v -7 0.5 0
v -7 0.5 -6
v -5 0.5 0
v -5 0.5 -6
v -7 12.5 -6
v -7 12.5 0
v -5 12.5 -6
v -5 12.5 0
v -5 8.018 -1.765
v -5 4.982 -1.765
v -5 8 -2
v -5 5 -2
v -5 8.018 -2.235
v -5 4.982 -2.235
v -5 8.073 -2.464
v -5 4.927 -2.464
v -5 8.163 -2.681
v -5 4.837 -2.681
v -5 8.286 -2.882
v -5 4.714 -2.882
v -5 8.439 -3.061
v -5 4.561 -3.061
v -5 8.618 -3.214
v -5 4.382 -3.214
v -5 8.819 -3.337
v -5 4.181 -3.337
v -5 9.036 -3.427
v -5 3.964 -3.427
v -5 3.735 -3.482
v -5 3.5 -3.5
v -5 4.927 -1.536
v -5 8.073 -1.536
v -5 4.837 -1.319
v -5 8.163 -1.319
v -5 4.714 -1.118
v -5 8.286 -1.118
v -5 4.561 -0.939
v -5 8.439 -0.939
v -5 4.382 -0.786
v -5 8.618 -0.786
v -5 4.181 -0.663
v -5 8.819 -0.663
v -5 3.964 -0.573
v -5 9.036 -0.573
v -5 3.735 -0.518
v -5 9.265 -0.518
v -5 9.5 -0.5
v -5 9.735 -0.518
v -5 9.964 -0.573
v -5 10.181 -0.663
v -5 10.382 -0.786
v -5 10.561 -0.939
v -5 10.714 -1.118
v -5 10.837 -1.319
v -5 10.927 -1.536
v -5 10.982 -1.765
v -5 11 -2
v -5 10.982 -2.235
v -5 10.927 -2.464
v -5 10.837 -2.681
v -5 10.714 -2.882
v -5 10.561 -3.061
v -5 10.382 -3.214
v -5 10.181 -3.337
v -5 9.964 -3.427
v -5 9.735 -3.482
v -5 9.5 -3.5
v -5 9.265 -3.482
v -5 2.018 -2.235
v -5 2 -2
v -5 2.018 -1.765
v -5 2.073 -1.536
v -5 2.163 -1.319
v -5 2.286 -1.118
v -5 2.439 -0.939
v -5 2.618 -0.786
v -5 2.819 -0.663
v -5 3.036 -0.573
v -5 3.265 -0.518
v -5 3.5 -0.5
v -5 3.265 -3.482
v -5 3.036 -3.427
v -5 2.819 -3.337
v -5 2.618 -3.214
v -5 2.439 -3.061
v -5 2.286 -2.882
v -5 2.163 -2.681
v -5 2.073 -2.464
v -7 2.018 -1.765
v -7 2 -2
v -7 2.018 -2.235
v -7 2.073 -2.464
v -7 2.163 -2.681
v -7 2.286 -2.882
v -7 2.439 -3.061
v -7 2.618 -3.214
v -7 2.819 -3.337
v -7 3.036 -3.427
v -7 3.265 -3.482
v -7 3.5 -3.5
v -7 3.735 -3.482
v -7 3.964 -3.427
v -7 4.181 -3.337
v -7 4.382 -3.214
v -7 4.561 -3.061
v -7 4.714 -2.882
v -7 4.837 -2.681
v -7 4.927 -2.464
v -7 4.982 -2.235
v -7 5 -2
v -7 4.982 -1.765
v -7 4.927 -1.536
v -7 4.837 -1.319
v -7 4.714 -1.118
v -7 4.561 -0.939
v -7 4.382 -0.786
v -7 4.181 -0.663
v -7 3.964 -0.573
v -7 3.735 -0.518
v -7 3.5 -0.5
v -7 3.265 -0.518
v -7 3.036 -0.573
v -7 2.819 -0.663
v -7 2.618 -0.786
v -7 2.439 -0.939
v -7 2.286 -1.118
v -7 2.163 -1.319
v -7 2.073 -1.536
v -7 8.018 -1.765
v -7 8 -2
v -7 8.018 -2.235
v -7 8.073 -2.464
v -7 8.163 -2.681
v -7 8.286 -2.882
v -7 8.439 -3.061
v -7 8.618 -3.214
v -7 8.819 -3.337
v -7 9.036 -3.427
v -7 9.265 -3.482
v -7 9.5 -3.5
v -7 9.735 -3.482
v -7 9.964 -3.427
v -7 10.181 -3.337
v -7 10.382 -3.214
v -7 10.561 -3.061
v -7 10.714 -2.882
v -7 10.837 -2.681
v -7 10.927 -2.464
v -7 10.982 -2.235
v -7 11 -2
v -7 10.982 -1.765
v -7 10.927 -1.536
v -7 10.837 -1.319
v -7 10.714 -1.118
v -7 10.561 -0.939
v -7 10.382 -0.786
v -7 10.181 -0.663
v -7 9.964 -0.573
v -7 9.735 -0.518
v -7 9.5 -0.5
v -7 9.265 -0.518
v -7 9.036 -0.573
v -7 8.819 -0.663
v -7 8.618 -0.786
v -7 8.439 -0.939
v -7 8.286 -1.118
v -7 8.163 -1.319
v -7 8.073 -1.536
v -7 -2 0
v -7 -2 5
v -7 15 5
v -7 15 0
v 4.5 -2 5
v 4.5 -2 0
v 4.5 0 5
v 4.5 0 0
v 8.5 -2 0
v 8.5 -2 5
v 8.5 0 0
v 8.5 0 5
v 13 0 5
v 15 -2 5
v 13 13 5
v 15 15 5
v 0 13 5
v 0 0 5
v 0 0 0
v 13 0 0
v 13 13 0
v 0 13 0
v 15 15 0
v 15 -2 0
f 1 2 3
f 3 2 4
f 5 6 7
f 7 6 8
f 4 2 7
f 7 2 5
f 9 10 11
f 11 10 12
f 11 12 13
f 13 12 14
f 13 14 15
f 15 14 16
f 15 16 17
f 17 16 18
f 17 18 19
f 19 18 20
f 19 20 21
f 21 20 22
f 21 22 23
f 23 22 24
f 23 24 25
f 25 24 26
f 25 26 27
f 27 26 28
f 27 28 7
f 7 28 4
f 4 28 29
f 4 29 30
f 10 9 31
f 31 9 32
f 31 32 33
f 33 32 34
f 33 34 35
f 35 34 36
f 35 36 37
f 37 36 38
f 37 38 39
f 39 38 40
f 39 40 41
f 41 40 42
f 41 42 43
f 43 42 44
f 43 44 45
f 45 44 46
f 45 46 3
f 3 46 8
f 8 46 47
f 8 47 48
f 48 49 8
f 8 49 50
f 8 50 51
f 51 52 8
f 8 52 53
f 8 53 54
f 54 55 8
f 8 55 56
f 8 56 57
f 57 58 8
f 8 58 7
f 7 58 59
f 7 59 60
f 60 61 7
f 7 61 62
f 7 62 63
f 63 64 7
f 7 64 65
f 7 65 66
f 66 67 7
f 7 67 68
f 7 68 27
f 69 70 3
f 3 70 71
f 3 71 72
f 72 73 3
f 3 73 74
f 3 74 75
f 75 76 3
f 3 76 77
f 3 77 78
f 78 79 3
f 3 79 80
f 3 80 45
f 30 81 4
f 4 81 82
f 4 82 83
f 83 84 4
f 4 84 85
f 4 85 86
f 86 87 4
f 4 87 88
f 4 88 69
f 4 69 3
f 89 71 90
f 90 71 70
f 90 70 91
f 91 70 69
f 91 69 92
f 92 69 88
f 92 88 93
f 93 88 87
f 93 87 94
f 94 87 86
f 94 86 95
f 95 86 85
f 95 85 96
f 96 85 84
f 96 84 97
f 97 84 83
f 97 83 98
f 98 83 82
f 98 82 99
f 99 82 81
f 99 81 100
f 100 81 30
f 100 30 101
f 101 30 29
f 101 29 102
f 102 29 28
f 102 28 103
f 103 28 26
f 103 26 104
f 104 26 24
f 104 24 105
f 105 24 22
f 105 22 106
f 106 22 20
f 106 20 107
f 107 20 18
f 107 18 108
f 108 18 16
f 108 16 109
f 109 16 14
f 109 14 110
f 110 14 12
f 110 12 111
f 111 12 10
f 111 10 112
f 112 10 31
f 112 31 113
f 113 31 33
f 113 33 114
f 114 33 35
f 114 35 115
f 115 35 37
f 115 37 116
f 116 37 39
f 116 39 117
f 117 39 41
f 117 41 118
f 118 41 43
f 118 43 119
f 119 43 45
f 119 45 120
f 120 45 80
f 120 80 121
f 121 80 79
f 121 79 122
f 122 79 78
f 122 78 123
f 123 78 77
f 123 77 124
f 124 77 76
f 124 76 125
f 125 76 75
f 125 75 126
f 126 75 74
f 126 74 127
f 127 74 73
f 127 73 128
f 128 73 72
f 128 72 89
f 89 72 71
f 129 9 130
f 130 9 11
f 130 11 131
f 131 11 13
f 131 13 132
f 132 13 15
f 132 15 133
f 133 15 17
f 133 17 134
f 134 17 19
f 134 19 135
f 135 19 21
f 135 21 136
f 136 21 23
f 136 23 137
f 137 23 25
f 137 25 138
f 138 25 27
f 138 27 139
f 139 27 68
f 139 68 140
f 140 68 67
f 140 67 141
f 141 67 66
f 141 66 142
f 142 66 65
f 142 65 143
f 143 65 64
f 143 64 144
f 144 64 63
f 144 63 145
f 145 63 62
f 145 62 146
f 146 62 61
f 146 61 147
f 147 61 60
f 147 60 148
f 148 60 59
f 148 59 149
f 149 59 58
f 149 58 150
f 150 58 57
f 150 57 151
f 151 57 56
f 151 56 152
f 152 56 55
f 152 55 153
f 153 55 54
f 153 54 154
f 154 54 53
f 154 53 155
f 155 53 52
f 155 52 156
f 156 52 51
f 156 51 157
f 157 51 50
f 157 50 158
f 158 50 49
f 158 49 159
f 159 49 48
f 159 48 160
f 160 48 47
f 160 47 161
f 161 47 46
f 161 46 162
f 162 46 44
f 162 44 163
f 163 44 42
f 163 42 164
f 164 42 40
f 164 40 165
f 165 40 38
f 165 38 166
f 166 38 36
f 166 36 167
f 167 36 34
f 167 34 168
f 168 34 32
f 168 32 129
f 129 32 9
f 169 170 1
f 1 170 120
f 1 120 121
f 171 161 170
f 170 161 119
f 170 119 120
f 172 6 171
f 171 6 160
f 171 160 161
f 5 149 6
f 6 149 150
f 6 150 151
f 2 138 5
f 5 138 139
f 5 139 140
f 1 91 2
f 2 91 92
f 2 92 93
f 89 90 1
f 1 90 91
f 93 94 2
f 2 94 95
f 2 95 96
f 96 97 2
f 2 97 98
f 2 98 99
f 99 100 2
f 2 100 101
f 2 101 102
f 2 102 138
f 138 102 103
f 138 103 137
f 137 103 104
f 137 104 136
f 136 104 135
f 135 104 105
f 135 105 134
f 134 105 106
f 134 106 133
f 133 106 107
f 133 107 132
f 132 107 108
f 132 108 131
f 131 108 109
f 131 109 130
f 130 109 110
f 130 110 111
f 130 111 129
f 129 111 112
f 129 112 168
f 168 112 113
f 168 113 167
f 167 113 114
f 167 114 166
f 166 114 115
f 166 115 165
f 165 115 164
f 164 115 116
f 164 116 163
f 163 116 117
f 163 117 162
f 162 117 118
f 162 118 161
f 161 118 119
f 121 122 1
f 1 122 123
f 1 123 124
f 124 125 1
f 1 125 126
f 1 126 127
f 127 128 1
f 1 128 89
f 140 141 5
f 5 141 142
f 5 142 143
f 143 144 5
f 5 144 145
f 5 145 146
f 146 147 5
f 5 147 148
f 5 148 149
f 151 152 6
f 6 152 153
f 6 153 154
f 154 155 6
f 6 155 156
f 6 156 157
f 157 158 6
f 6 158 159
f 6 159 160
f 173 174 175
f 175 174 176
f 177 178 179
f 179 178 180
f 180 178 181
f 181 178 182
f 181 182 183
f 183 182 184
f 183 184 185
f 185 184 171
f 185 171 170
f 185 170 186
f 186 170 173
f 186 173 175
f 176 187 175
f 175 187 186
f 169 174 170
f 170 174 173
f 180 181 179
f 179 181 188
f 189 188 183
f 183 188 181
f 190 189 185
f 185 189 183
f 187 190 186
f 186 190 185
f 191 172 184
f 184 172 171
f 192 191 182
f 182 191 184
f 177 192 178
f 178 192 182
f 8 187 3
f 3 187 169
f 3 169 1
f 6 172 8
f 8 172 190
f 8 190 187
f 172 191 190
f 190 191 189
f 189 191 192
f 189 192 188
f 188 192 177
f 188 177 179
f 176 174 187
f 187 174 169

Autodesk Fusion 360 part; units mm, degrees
sketch "Sketch1" plane through (0, 0, 0) normal (0, 0, 1) x (1, 0, 0)
  line L0 (0, 0) -> (13, 0)
  line L1 (13, 0) -> (13, 13)
  line L2 (13, 13) -> (0, 13)
  line L3 (0, 13) -> (0, 0)
  line L4 (-2, -2) -> (15, -2)
  line L5 (15, -2) -> (15, 15)
  line L6 (15, 15) -> (-2, 15)
  line L7 (-2, 15) -> (-2, -2)
  dimension "d1" = 13
  dimension "d2" = 13
  dimension "d3" = 2
extrude "Extrude1" add sketch "Sketch1" along normal blind 5
sketch "Sketch2" plane through (0, 0, 0) normal (0, 1, 0) x (-1, 0, 0)
  line L0 (-13, 0) -> (0, 0)
  line L1 (0, 0) -> (0, 5)
  line L2 (0, 5) -> (-13, 5)
  line L3 (-13, 5) -> (-13, 0)
  line L4 (-8.5, 5) -> (-4.5, 5)
  line L5 (-4.5, 5) -> (-4.5, 0)
  line L6 (-4.5, 0) -> (-8.5, 0)
  line L7 (-8.5, 0) -> (-8.5, 5)
  line L8 (-6.5, 0) -> (-6.5, 5)
  dimension "d6" = 4
  dimension "d7" = 90
extrude "Extrude2" cut sketch "Sketch2" against normal blind 10 contours L0 L2 L4 L6 L7 L8 | L0 L2 L4 L5 L6 L8
extrude "Extrude3" add 1 faces at (-2, 9.3333, 1.6667) along direction (-1, 0, 0) blind 5
sketch "Sketch3" plane through (0, 0, 0) normal (0, 0, -1) x (1, 0, 0)
  line L0 (8.5, 2) -> (8.5, 0)
  line L1 (8.5, 0) -> (13, 0)
  line L2 (13, 0) -> (13, -13)
  line L3 (13, -13) -> (0, -13)
  line L4 (0, -13) -> (0, 0)
  line L5 (0, 0) -> (4.5, 0)
  line L6 (4.5, 0) -> (4.5, 2)
  line L7 (4.5, 2) -> (-7, 2)
  line L8 (-7, 2) -> (-7, -15)
  line L9 (-7, -15) -> (15, -15)
  line L10 (15, -15) -> (15, 2)
  line L11 (15, 2) -> (8.5, 2)
  line L12 (-7, 2) -> (-5, 2)
  line L13 (-5, 2) -> (-5, -15)
  line L14 (-5, -15) -> (-7, -15)
  line L15 (-7, -15) -> (-7, 2)
  dimension "d12" = 2
extrude "Extrude4" add sketch "Sketch3" along normal blind 6 contours L7 L8 L9 L12 L13 L14 L15
sketch "Sketch4" plane through (-5, 0, 0) normal (1, 0, 0) x (0, 1, 0)
  line L0 (15, 0) -> (-2, 0)
  line L1 (-2, 0) -> (-2, -6)
  line L2 (-2, -6) -> (15, -6)
  line L3 (15, -6) -> (15, 0)
  line L4 (-2, -2) -> (15, -2)
  circle A0 centre (3.5, -2) radius 1.5
  circle A1 centre (9.5, -2) radius 1.5
  line L5 (3.5, -2) -> (9.5, -2)
  line L6 (6.5, -2) -> (6.5, 0)
  dimension "d15" = 2
  dimension "d16" = 3
  dimension "d17" = 3
  dimension "d18" = 6
  dimension "d19" = 90
extrude "Extrude5" cut sketch "Sketch4" against normal blind 5 contours L4 A1 L5 | L4 A1 L5 | L4 A0 L5 | L4 A0 L5
sketch "Sketch5" plane through (-5, 0, 0) normal (1, 0, 0) x (0, 1, 0)
  circle A0 centre (3.5, -2) radius 1.5
  circle A1 centre (9.5, -2) radius 1.5
  line L0 (15, 0) -> (-2, 0)
  line L1 (-2, 0) -> (-2, -6)
  line L2 (-2, -6) -> (15, -6)
  line L3 (15, -6) -> (15, 0)
  line L4 (0.5, 0) -> (12.5, 0)
  line L5 (12.5, 0) -> (12.5, -6)
  line L6 (12.5, -6) -> (0.5, -6)
  line L7 (0.5, -6) -> (0.5, 0)
  line L8 (-2, -6) -> (15, -6)
  line L9 (15, -6) -> (15, 0)
  line L10 (15, 0) -> (-2, 0)
  line L11 (-2, 0) -> (-2, -6)
  dimension "d22" = 3
  dimension "d23" = 3
extrude "Extrude6" cut sketch "Sketch5" against normal blind 5 contours L0 L2 L3 L5 L8 L9 L10 | L0 L1 L2 L7 L8 L10 L11
